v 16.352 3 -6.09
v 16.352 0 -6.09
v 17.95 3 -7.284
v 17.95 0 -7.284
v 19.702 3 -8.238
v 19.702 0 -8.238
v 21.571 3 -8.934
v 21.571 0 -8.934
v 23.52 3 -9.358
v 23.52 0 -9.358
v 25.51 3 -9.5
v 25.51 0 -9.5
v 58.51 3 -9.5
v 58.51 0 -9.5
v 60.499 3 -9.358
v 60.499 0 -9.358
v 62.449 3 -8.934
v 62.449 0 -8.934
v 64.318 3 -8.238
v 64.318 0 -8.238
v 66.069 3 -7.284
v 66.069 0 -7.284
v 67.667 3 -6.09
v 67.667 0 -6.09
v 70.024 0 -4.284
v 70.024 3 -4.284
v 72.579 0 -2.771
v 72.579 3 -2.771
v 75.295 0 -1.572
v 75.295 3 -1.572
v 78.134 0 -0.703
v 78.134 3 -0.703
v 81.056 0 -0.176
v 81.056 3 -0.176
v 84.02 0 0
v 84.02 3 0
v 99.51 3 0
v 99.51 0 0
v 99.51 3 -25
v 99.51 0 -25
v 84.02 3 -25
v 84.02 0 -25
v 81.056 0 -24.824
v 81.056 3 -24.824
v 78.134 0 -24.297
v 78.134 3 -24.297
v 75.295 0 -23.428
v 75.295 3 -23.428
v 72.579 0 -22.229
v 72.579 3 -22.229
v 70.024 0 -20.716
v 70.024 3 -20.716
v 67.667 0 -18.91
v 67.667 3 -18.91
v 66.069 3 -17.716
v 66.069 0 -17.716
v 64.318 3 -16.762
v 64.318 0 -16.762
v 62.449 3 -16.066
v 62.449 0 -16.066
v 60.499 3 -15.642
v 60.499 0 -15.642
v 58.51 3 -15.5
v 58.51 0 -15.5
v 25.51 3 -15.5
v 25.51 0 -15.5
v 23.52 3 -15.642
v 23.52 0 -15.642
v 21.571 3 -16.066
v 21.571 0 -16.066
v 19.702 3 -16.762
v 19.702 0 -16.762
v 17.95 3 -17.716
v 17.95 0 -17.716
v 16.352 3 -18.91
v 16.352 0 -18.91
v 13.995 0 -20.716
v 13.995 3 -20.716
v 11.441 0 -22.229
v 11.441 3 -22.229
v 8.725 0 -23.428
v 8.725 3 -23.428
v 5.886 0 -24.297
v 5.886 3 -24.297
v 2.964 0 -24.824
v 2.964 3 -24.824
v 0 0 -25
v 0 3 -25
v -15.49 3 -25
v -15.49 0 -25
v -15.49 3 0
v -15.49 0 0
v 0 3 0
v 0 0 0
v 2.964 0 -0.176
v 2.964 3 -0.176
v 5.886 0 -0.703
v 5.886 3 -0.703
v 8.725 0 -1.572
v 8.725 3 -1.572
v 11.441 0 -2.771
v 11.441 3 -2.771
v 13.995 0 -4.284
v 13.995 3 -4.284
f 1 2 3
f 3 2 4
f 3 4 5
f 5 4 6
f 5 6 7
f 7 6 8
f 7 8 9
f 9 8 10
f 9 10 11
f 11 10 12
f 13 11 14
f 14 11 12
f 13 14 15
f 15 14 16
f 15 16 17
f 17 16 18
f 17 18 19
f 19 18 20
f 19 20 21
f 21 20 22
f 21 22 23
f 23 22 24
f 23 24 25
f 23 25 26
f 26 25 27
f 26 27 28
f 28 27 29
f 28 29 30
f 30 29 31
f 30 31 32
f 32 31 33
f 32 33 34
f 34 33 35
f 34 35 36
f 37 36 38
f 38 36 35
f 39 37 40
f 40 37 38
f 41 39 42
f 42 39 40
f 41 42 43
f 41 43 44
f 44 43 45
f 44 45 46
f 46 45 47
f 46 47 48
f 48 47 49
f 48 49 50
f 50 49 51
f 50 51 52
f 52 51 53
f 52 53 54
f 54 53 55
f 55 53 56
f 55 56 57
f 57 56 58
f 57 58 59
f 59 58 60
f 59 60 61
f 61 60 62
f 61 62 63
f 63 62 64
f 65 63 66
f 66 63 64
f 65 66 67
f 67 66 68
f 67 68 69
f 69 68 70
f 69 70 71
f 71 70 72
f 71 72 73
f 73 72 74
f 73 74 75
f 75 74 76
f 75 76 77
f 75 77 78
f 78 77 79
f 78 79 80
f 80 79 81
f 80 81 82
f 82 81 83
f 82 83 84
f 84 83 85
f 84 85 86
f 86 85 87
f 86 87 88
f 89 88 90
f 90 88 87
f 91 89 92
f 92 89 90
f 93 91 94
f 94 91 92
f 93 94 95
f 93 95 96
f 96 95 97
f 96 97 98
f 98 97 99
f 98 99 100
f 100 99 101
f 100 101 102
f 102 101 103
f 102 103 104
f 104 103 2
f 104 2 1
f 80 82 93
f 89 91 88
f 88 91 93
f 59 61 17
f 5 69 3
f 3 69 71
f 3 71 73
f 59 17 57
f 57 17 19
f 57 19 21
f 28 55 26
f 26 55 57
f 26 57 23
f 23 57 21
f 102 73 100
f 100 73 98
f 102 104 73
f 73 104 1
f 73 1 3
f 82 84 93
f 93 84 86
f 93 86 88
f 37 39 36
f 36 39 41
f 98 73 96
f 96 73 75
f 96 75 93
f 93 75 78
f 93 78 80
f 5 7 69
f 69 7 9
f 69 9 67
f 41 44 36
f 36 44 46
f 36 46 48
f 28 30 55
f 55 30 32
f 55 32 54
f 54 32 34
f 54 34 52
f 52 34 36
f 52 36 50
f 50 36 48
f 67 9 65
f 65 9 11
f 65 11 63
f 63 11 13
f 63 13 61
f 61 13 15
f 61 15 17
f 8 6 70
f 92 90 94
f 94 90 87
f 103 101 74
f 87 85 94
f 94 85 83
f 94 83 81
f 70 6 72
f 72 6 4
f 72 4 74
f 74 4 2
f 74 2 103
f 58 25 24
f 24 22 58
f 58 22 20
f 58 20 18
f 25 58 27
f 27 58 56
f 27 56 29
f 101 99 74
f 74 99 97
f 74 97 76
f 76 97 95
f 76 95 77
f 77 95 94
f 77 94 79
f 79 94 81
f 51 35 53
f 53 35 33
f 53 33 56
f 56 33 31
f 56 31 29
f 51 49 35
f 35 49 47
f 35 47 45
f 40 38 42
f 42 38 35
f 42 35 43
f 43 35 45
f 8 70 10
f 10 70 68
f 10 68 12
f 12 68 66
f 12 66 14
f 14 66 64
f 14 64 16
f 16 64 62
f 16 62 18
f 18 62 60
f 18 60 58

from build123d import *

# Parameters (mm, degrees)
BOSS_EXTRUDE1_DEPTH = 3


with BuildPart() as part:
    # Sketch3 → Boss-Extrude1 (new body)
    with BuildSketch(Plane(origin=(0, 0, 0), x_dir=(1, 0, 0), z_dir=(0, 1, 0))):
        with BuildLine():
            Line((0, 0), (-15.490197962, 0))
            Line((-15.490197962, 0), (-15.490197962, 25))
            Line((-15.490197962, 25), (0, 25))
            ThreePointArc((0, 25), (8.724780506, 23.428149844), (16.352437204, 18.91025641))
            ThreePointArc((16.352437204, 18.91025641), (20.623924954, 16.380236087), (25.509802038, 15.5))
            Line((25.509802038, 15.5), (58.509802038, 15.5))
            ThreePointArc((58.509802038, 15.5), (63.395679121, 16.380236087), (67.667166872, 18.91025641))
            ThreePointArc((67.667166872, 18.91025641), (75.29482357, 23.428149844), (84.019604075, 25))
            Line((84.019604075, 25), (99.509802038, 25))
            Line((99.509802038, 25), (99.509802038, 0))
            Line((99.509802038, 0), (84.019604075, 0))
            ThreePointArc((84.019604075, 0), (75.29482357, 1.571850156), (67.667166872, 6.08974359))
            ThreePointArc((67.667166872, 6.08974359), (63.395679121, 8.619763913), (58.509802038, 9.5))
            Line((58.509802038, 9.5), (25.509802038, 9.5))
            ThreePointArc((25.509802038, 9.5), (20.623924954, 8.619763913), (16.352437204, 6.08974359))
            ThreePointArc((16.352437204, 6.08974359), (8.724780506, 1.571850156), (0, 0))
        make_face()
    extrude(amount=BOSS_EXTRUDE1_DEPTH)


solid = part.part
